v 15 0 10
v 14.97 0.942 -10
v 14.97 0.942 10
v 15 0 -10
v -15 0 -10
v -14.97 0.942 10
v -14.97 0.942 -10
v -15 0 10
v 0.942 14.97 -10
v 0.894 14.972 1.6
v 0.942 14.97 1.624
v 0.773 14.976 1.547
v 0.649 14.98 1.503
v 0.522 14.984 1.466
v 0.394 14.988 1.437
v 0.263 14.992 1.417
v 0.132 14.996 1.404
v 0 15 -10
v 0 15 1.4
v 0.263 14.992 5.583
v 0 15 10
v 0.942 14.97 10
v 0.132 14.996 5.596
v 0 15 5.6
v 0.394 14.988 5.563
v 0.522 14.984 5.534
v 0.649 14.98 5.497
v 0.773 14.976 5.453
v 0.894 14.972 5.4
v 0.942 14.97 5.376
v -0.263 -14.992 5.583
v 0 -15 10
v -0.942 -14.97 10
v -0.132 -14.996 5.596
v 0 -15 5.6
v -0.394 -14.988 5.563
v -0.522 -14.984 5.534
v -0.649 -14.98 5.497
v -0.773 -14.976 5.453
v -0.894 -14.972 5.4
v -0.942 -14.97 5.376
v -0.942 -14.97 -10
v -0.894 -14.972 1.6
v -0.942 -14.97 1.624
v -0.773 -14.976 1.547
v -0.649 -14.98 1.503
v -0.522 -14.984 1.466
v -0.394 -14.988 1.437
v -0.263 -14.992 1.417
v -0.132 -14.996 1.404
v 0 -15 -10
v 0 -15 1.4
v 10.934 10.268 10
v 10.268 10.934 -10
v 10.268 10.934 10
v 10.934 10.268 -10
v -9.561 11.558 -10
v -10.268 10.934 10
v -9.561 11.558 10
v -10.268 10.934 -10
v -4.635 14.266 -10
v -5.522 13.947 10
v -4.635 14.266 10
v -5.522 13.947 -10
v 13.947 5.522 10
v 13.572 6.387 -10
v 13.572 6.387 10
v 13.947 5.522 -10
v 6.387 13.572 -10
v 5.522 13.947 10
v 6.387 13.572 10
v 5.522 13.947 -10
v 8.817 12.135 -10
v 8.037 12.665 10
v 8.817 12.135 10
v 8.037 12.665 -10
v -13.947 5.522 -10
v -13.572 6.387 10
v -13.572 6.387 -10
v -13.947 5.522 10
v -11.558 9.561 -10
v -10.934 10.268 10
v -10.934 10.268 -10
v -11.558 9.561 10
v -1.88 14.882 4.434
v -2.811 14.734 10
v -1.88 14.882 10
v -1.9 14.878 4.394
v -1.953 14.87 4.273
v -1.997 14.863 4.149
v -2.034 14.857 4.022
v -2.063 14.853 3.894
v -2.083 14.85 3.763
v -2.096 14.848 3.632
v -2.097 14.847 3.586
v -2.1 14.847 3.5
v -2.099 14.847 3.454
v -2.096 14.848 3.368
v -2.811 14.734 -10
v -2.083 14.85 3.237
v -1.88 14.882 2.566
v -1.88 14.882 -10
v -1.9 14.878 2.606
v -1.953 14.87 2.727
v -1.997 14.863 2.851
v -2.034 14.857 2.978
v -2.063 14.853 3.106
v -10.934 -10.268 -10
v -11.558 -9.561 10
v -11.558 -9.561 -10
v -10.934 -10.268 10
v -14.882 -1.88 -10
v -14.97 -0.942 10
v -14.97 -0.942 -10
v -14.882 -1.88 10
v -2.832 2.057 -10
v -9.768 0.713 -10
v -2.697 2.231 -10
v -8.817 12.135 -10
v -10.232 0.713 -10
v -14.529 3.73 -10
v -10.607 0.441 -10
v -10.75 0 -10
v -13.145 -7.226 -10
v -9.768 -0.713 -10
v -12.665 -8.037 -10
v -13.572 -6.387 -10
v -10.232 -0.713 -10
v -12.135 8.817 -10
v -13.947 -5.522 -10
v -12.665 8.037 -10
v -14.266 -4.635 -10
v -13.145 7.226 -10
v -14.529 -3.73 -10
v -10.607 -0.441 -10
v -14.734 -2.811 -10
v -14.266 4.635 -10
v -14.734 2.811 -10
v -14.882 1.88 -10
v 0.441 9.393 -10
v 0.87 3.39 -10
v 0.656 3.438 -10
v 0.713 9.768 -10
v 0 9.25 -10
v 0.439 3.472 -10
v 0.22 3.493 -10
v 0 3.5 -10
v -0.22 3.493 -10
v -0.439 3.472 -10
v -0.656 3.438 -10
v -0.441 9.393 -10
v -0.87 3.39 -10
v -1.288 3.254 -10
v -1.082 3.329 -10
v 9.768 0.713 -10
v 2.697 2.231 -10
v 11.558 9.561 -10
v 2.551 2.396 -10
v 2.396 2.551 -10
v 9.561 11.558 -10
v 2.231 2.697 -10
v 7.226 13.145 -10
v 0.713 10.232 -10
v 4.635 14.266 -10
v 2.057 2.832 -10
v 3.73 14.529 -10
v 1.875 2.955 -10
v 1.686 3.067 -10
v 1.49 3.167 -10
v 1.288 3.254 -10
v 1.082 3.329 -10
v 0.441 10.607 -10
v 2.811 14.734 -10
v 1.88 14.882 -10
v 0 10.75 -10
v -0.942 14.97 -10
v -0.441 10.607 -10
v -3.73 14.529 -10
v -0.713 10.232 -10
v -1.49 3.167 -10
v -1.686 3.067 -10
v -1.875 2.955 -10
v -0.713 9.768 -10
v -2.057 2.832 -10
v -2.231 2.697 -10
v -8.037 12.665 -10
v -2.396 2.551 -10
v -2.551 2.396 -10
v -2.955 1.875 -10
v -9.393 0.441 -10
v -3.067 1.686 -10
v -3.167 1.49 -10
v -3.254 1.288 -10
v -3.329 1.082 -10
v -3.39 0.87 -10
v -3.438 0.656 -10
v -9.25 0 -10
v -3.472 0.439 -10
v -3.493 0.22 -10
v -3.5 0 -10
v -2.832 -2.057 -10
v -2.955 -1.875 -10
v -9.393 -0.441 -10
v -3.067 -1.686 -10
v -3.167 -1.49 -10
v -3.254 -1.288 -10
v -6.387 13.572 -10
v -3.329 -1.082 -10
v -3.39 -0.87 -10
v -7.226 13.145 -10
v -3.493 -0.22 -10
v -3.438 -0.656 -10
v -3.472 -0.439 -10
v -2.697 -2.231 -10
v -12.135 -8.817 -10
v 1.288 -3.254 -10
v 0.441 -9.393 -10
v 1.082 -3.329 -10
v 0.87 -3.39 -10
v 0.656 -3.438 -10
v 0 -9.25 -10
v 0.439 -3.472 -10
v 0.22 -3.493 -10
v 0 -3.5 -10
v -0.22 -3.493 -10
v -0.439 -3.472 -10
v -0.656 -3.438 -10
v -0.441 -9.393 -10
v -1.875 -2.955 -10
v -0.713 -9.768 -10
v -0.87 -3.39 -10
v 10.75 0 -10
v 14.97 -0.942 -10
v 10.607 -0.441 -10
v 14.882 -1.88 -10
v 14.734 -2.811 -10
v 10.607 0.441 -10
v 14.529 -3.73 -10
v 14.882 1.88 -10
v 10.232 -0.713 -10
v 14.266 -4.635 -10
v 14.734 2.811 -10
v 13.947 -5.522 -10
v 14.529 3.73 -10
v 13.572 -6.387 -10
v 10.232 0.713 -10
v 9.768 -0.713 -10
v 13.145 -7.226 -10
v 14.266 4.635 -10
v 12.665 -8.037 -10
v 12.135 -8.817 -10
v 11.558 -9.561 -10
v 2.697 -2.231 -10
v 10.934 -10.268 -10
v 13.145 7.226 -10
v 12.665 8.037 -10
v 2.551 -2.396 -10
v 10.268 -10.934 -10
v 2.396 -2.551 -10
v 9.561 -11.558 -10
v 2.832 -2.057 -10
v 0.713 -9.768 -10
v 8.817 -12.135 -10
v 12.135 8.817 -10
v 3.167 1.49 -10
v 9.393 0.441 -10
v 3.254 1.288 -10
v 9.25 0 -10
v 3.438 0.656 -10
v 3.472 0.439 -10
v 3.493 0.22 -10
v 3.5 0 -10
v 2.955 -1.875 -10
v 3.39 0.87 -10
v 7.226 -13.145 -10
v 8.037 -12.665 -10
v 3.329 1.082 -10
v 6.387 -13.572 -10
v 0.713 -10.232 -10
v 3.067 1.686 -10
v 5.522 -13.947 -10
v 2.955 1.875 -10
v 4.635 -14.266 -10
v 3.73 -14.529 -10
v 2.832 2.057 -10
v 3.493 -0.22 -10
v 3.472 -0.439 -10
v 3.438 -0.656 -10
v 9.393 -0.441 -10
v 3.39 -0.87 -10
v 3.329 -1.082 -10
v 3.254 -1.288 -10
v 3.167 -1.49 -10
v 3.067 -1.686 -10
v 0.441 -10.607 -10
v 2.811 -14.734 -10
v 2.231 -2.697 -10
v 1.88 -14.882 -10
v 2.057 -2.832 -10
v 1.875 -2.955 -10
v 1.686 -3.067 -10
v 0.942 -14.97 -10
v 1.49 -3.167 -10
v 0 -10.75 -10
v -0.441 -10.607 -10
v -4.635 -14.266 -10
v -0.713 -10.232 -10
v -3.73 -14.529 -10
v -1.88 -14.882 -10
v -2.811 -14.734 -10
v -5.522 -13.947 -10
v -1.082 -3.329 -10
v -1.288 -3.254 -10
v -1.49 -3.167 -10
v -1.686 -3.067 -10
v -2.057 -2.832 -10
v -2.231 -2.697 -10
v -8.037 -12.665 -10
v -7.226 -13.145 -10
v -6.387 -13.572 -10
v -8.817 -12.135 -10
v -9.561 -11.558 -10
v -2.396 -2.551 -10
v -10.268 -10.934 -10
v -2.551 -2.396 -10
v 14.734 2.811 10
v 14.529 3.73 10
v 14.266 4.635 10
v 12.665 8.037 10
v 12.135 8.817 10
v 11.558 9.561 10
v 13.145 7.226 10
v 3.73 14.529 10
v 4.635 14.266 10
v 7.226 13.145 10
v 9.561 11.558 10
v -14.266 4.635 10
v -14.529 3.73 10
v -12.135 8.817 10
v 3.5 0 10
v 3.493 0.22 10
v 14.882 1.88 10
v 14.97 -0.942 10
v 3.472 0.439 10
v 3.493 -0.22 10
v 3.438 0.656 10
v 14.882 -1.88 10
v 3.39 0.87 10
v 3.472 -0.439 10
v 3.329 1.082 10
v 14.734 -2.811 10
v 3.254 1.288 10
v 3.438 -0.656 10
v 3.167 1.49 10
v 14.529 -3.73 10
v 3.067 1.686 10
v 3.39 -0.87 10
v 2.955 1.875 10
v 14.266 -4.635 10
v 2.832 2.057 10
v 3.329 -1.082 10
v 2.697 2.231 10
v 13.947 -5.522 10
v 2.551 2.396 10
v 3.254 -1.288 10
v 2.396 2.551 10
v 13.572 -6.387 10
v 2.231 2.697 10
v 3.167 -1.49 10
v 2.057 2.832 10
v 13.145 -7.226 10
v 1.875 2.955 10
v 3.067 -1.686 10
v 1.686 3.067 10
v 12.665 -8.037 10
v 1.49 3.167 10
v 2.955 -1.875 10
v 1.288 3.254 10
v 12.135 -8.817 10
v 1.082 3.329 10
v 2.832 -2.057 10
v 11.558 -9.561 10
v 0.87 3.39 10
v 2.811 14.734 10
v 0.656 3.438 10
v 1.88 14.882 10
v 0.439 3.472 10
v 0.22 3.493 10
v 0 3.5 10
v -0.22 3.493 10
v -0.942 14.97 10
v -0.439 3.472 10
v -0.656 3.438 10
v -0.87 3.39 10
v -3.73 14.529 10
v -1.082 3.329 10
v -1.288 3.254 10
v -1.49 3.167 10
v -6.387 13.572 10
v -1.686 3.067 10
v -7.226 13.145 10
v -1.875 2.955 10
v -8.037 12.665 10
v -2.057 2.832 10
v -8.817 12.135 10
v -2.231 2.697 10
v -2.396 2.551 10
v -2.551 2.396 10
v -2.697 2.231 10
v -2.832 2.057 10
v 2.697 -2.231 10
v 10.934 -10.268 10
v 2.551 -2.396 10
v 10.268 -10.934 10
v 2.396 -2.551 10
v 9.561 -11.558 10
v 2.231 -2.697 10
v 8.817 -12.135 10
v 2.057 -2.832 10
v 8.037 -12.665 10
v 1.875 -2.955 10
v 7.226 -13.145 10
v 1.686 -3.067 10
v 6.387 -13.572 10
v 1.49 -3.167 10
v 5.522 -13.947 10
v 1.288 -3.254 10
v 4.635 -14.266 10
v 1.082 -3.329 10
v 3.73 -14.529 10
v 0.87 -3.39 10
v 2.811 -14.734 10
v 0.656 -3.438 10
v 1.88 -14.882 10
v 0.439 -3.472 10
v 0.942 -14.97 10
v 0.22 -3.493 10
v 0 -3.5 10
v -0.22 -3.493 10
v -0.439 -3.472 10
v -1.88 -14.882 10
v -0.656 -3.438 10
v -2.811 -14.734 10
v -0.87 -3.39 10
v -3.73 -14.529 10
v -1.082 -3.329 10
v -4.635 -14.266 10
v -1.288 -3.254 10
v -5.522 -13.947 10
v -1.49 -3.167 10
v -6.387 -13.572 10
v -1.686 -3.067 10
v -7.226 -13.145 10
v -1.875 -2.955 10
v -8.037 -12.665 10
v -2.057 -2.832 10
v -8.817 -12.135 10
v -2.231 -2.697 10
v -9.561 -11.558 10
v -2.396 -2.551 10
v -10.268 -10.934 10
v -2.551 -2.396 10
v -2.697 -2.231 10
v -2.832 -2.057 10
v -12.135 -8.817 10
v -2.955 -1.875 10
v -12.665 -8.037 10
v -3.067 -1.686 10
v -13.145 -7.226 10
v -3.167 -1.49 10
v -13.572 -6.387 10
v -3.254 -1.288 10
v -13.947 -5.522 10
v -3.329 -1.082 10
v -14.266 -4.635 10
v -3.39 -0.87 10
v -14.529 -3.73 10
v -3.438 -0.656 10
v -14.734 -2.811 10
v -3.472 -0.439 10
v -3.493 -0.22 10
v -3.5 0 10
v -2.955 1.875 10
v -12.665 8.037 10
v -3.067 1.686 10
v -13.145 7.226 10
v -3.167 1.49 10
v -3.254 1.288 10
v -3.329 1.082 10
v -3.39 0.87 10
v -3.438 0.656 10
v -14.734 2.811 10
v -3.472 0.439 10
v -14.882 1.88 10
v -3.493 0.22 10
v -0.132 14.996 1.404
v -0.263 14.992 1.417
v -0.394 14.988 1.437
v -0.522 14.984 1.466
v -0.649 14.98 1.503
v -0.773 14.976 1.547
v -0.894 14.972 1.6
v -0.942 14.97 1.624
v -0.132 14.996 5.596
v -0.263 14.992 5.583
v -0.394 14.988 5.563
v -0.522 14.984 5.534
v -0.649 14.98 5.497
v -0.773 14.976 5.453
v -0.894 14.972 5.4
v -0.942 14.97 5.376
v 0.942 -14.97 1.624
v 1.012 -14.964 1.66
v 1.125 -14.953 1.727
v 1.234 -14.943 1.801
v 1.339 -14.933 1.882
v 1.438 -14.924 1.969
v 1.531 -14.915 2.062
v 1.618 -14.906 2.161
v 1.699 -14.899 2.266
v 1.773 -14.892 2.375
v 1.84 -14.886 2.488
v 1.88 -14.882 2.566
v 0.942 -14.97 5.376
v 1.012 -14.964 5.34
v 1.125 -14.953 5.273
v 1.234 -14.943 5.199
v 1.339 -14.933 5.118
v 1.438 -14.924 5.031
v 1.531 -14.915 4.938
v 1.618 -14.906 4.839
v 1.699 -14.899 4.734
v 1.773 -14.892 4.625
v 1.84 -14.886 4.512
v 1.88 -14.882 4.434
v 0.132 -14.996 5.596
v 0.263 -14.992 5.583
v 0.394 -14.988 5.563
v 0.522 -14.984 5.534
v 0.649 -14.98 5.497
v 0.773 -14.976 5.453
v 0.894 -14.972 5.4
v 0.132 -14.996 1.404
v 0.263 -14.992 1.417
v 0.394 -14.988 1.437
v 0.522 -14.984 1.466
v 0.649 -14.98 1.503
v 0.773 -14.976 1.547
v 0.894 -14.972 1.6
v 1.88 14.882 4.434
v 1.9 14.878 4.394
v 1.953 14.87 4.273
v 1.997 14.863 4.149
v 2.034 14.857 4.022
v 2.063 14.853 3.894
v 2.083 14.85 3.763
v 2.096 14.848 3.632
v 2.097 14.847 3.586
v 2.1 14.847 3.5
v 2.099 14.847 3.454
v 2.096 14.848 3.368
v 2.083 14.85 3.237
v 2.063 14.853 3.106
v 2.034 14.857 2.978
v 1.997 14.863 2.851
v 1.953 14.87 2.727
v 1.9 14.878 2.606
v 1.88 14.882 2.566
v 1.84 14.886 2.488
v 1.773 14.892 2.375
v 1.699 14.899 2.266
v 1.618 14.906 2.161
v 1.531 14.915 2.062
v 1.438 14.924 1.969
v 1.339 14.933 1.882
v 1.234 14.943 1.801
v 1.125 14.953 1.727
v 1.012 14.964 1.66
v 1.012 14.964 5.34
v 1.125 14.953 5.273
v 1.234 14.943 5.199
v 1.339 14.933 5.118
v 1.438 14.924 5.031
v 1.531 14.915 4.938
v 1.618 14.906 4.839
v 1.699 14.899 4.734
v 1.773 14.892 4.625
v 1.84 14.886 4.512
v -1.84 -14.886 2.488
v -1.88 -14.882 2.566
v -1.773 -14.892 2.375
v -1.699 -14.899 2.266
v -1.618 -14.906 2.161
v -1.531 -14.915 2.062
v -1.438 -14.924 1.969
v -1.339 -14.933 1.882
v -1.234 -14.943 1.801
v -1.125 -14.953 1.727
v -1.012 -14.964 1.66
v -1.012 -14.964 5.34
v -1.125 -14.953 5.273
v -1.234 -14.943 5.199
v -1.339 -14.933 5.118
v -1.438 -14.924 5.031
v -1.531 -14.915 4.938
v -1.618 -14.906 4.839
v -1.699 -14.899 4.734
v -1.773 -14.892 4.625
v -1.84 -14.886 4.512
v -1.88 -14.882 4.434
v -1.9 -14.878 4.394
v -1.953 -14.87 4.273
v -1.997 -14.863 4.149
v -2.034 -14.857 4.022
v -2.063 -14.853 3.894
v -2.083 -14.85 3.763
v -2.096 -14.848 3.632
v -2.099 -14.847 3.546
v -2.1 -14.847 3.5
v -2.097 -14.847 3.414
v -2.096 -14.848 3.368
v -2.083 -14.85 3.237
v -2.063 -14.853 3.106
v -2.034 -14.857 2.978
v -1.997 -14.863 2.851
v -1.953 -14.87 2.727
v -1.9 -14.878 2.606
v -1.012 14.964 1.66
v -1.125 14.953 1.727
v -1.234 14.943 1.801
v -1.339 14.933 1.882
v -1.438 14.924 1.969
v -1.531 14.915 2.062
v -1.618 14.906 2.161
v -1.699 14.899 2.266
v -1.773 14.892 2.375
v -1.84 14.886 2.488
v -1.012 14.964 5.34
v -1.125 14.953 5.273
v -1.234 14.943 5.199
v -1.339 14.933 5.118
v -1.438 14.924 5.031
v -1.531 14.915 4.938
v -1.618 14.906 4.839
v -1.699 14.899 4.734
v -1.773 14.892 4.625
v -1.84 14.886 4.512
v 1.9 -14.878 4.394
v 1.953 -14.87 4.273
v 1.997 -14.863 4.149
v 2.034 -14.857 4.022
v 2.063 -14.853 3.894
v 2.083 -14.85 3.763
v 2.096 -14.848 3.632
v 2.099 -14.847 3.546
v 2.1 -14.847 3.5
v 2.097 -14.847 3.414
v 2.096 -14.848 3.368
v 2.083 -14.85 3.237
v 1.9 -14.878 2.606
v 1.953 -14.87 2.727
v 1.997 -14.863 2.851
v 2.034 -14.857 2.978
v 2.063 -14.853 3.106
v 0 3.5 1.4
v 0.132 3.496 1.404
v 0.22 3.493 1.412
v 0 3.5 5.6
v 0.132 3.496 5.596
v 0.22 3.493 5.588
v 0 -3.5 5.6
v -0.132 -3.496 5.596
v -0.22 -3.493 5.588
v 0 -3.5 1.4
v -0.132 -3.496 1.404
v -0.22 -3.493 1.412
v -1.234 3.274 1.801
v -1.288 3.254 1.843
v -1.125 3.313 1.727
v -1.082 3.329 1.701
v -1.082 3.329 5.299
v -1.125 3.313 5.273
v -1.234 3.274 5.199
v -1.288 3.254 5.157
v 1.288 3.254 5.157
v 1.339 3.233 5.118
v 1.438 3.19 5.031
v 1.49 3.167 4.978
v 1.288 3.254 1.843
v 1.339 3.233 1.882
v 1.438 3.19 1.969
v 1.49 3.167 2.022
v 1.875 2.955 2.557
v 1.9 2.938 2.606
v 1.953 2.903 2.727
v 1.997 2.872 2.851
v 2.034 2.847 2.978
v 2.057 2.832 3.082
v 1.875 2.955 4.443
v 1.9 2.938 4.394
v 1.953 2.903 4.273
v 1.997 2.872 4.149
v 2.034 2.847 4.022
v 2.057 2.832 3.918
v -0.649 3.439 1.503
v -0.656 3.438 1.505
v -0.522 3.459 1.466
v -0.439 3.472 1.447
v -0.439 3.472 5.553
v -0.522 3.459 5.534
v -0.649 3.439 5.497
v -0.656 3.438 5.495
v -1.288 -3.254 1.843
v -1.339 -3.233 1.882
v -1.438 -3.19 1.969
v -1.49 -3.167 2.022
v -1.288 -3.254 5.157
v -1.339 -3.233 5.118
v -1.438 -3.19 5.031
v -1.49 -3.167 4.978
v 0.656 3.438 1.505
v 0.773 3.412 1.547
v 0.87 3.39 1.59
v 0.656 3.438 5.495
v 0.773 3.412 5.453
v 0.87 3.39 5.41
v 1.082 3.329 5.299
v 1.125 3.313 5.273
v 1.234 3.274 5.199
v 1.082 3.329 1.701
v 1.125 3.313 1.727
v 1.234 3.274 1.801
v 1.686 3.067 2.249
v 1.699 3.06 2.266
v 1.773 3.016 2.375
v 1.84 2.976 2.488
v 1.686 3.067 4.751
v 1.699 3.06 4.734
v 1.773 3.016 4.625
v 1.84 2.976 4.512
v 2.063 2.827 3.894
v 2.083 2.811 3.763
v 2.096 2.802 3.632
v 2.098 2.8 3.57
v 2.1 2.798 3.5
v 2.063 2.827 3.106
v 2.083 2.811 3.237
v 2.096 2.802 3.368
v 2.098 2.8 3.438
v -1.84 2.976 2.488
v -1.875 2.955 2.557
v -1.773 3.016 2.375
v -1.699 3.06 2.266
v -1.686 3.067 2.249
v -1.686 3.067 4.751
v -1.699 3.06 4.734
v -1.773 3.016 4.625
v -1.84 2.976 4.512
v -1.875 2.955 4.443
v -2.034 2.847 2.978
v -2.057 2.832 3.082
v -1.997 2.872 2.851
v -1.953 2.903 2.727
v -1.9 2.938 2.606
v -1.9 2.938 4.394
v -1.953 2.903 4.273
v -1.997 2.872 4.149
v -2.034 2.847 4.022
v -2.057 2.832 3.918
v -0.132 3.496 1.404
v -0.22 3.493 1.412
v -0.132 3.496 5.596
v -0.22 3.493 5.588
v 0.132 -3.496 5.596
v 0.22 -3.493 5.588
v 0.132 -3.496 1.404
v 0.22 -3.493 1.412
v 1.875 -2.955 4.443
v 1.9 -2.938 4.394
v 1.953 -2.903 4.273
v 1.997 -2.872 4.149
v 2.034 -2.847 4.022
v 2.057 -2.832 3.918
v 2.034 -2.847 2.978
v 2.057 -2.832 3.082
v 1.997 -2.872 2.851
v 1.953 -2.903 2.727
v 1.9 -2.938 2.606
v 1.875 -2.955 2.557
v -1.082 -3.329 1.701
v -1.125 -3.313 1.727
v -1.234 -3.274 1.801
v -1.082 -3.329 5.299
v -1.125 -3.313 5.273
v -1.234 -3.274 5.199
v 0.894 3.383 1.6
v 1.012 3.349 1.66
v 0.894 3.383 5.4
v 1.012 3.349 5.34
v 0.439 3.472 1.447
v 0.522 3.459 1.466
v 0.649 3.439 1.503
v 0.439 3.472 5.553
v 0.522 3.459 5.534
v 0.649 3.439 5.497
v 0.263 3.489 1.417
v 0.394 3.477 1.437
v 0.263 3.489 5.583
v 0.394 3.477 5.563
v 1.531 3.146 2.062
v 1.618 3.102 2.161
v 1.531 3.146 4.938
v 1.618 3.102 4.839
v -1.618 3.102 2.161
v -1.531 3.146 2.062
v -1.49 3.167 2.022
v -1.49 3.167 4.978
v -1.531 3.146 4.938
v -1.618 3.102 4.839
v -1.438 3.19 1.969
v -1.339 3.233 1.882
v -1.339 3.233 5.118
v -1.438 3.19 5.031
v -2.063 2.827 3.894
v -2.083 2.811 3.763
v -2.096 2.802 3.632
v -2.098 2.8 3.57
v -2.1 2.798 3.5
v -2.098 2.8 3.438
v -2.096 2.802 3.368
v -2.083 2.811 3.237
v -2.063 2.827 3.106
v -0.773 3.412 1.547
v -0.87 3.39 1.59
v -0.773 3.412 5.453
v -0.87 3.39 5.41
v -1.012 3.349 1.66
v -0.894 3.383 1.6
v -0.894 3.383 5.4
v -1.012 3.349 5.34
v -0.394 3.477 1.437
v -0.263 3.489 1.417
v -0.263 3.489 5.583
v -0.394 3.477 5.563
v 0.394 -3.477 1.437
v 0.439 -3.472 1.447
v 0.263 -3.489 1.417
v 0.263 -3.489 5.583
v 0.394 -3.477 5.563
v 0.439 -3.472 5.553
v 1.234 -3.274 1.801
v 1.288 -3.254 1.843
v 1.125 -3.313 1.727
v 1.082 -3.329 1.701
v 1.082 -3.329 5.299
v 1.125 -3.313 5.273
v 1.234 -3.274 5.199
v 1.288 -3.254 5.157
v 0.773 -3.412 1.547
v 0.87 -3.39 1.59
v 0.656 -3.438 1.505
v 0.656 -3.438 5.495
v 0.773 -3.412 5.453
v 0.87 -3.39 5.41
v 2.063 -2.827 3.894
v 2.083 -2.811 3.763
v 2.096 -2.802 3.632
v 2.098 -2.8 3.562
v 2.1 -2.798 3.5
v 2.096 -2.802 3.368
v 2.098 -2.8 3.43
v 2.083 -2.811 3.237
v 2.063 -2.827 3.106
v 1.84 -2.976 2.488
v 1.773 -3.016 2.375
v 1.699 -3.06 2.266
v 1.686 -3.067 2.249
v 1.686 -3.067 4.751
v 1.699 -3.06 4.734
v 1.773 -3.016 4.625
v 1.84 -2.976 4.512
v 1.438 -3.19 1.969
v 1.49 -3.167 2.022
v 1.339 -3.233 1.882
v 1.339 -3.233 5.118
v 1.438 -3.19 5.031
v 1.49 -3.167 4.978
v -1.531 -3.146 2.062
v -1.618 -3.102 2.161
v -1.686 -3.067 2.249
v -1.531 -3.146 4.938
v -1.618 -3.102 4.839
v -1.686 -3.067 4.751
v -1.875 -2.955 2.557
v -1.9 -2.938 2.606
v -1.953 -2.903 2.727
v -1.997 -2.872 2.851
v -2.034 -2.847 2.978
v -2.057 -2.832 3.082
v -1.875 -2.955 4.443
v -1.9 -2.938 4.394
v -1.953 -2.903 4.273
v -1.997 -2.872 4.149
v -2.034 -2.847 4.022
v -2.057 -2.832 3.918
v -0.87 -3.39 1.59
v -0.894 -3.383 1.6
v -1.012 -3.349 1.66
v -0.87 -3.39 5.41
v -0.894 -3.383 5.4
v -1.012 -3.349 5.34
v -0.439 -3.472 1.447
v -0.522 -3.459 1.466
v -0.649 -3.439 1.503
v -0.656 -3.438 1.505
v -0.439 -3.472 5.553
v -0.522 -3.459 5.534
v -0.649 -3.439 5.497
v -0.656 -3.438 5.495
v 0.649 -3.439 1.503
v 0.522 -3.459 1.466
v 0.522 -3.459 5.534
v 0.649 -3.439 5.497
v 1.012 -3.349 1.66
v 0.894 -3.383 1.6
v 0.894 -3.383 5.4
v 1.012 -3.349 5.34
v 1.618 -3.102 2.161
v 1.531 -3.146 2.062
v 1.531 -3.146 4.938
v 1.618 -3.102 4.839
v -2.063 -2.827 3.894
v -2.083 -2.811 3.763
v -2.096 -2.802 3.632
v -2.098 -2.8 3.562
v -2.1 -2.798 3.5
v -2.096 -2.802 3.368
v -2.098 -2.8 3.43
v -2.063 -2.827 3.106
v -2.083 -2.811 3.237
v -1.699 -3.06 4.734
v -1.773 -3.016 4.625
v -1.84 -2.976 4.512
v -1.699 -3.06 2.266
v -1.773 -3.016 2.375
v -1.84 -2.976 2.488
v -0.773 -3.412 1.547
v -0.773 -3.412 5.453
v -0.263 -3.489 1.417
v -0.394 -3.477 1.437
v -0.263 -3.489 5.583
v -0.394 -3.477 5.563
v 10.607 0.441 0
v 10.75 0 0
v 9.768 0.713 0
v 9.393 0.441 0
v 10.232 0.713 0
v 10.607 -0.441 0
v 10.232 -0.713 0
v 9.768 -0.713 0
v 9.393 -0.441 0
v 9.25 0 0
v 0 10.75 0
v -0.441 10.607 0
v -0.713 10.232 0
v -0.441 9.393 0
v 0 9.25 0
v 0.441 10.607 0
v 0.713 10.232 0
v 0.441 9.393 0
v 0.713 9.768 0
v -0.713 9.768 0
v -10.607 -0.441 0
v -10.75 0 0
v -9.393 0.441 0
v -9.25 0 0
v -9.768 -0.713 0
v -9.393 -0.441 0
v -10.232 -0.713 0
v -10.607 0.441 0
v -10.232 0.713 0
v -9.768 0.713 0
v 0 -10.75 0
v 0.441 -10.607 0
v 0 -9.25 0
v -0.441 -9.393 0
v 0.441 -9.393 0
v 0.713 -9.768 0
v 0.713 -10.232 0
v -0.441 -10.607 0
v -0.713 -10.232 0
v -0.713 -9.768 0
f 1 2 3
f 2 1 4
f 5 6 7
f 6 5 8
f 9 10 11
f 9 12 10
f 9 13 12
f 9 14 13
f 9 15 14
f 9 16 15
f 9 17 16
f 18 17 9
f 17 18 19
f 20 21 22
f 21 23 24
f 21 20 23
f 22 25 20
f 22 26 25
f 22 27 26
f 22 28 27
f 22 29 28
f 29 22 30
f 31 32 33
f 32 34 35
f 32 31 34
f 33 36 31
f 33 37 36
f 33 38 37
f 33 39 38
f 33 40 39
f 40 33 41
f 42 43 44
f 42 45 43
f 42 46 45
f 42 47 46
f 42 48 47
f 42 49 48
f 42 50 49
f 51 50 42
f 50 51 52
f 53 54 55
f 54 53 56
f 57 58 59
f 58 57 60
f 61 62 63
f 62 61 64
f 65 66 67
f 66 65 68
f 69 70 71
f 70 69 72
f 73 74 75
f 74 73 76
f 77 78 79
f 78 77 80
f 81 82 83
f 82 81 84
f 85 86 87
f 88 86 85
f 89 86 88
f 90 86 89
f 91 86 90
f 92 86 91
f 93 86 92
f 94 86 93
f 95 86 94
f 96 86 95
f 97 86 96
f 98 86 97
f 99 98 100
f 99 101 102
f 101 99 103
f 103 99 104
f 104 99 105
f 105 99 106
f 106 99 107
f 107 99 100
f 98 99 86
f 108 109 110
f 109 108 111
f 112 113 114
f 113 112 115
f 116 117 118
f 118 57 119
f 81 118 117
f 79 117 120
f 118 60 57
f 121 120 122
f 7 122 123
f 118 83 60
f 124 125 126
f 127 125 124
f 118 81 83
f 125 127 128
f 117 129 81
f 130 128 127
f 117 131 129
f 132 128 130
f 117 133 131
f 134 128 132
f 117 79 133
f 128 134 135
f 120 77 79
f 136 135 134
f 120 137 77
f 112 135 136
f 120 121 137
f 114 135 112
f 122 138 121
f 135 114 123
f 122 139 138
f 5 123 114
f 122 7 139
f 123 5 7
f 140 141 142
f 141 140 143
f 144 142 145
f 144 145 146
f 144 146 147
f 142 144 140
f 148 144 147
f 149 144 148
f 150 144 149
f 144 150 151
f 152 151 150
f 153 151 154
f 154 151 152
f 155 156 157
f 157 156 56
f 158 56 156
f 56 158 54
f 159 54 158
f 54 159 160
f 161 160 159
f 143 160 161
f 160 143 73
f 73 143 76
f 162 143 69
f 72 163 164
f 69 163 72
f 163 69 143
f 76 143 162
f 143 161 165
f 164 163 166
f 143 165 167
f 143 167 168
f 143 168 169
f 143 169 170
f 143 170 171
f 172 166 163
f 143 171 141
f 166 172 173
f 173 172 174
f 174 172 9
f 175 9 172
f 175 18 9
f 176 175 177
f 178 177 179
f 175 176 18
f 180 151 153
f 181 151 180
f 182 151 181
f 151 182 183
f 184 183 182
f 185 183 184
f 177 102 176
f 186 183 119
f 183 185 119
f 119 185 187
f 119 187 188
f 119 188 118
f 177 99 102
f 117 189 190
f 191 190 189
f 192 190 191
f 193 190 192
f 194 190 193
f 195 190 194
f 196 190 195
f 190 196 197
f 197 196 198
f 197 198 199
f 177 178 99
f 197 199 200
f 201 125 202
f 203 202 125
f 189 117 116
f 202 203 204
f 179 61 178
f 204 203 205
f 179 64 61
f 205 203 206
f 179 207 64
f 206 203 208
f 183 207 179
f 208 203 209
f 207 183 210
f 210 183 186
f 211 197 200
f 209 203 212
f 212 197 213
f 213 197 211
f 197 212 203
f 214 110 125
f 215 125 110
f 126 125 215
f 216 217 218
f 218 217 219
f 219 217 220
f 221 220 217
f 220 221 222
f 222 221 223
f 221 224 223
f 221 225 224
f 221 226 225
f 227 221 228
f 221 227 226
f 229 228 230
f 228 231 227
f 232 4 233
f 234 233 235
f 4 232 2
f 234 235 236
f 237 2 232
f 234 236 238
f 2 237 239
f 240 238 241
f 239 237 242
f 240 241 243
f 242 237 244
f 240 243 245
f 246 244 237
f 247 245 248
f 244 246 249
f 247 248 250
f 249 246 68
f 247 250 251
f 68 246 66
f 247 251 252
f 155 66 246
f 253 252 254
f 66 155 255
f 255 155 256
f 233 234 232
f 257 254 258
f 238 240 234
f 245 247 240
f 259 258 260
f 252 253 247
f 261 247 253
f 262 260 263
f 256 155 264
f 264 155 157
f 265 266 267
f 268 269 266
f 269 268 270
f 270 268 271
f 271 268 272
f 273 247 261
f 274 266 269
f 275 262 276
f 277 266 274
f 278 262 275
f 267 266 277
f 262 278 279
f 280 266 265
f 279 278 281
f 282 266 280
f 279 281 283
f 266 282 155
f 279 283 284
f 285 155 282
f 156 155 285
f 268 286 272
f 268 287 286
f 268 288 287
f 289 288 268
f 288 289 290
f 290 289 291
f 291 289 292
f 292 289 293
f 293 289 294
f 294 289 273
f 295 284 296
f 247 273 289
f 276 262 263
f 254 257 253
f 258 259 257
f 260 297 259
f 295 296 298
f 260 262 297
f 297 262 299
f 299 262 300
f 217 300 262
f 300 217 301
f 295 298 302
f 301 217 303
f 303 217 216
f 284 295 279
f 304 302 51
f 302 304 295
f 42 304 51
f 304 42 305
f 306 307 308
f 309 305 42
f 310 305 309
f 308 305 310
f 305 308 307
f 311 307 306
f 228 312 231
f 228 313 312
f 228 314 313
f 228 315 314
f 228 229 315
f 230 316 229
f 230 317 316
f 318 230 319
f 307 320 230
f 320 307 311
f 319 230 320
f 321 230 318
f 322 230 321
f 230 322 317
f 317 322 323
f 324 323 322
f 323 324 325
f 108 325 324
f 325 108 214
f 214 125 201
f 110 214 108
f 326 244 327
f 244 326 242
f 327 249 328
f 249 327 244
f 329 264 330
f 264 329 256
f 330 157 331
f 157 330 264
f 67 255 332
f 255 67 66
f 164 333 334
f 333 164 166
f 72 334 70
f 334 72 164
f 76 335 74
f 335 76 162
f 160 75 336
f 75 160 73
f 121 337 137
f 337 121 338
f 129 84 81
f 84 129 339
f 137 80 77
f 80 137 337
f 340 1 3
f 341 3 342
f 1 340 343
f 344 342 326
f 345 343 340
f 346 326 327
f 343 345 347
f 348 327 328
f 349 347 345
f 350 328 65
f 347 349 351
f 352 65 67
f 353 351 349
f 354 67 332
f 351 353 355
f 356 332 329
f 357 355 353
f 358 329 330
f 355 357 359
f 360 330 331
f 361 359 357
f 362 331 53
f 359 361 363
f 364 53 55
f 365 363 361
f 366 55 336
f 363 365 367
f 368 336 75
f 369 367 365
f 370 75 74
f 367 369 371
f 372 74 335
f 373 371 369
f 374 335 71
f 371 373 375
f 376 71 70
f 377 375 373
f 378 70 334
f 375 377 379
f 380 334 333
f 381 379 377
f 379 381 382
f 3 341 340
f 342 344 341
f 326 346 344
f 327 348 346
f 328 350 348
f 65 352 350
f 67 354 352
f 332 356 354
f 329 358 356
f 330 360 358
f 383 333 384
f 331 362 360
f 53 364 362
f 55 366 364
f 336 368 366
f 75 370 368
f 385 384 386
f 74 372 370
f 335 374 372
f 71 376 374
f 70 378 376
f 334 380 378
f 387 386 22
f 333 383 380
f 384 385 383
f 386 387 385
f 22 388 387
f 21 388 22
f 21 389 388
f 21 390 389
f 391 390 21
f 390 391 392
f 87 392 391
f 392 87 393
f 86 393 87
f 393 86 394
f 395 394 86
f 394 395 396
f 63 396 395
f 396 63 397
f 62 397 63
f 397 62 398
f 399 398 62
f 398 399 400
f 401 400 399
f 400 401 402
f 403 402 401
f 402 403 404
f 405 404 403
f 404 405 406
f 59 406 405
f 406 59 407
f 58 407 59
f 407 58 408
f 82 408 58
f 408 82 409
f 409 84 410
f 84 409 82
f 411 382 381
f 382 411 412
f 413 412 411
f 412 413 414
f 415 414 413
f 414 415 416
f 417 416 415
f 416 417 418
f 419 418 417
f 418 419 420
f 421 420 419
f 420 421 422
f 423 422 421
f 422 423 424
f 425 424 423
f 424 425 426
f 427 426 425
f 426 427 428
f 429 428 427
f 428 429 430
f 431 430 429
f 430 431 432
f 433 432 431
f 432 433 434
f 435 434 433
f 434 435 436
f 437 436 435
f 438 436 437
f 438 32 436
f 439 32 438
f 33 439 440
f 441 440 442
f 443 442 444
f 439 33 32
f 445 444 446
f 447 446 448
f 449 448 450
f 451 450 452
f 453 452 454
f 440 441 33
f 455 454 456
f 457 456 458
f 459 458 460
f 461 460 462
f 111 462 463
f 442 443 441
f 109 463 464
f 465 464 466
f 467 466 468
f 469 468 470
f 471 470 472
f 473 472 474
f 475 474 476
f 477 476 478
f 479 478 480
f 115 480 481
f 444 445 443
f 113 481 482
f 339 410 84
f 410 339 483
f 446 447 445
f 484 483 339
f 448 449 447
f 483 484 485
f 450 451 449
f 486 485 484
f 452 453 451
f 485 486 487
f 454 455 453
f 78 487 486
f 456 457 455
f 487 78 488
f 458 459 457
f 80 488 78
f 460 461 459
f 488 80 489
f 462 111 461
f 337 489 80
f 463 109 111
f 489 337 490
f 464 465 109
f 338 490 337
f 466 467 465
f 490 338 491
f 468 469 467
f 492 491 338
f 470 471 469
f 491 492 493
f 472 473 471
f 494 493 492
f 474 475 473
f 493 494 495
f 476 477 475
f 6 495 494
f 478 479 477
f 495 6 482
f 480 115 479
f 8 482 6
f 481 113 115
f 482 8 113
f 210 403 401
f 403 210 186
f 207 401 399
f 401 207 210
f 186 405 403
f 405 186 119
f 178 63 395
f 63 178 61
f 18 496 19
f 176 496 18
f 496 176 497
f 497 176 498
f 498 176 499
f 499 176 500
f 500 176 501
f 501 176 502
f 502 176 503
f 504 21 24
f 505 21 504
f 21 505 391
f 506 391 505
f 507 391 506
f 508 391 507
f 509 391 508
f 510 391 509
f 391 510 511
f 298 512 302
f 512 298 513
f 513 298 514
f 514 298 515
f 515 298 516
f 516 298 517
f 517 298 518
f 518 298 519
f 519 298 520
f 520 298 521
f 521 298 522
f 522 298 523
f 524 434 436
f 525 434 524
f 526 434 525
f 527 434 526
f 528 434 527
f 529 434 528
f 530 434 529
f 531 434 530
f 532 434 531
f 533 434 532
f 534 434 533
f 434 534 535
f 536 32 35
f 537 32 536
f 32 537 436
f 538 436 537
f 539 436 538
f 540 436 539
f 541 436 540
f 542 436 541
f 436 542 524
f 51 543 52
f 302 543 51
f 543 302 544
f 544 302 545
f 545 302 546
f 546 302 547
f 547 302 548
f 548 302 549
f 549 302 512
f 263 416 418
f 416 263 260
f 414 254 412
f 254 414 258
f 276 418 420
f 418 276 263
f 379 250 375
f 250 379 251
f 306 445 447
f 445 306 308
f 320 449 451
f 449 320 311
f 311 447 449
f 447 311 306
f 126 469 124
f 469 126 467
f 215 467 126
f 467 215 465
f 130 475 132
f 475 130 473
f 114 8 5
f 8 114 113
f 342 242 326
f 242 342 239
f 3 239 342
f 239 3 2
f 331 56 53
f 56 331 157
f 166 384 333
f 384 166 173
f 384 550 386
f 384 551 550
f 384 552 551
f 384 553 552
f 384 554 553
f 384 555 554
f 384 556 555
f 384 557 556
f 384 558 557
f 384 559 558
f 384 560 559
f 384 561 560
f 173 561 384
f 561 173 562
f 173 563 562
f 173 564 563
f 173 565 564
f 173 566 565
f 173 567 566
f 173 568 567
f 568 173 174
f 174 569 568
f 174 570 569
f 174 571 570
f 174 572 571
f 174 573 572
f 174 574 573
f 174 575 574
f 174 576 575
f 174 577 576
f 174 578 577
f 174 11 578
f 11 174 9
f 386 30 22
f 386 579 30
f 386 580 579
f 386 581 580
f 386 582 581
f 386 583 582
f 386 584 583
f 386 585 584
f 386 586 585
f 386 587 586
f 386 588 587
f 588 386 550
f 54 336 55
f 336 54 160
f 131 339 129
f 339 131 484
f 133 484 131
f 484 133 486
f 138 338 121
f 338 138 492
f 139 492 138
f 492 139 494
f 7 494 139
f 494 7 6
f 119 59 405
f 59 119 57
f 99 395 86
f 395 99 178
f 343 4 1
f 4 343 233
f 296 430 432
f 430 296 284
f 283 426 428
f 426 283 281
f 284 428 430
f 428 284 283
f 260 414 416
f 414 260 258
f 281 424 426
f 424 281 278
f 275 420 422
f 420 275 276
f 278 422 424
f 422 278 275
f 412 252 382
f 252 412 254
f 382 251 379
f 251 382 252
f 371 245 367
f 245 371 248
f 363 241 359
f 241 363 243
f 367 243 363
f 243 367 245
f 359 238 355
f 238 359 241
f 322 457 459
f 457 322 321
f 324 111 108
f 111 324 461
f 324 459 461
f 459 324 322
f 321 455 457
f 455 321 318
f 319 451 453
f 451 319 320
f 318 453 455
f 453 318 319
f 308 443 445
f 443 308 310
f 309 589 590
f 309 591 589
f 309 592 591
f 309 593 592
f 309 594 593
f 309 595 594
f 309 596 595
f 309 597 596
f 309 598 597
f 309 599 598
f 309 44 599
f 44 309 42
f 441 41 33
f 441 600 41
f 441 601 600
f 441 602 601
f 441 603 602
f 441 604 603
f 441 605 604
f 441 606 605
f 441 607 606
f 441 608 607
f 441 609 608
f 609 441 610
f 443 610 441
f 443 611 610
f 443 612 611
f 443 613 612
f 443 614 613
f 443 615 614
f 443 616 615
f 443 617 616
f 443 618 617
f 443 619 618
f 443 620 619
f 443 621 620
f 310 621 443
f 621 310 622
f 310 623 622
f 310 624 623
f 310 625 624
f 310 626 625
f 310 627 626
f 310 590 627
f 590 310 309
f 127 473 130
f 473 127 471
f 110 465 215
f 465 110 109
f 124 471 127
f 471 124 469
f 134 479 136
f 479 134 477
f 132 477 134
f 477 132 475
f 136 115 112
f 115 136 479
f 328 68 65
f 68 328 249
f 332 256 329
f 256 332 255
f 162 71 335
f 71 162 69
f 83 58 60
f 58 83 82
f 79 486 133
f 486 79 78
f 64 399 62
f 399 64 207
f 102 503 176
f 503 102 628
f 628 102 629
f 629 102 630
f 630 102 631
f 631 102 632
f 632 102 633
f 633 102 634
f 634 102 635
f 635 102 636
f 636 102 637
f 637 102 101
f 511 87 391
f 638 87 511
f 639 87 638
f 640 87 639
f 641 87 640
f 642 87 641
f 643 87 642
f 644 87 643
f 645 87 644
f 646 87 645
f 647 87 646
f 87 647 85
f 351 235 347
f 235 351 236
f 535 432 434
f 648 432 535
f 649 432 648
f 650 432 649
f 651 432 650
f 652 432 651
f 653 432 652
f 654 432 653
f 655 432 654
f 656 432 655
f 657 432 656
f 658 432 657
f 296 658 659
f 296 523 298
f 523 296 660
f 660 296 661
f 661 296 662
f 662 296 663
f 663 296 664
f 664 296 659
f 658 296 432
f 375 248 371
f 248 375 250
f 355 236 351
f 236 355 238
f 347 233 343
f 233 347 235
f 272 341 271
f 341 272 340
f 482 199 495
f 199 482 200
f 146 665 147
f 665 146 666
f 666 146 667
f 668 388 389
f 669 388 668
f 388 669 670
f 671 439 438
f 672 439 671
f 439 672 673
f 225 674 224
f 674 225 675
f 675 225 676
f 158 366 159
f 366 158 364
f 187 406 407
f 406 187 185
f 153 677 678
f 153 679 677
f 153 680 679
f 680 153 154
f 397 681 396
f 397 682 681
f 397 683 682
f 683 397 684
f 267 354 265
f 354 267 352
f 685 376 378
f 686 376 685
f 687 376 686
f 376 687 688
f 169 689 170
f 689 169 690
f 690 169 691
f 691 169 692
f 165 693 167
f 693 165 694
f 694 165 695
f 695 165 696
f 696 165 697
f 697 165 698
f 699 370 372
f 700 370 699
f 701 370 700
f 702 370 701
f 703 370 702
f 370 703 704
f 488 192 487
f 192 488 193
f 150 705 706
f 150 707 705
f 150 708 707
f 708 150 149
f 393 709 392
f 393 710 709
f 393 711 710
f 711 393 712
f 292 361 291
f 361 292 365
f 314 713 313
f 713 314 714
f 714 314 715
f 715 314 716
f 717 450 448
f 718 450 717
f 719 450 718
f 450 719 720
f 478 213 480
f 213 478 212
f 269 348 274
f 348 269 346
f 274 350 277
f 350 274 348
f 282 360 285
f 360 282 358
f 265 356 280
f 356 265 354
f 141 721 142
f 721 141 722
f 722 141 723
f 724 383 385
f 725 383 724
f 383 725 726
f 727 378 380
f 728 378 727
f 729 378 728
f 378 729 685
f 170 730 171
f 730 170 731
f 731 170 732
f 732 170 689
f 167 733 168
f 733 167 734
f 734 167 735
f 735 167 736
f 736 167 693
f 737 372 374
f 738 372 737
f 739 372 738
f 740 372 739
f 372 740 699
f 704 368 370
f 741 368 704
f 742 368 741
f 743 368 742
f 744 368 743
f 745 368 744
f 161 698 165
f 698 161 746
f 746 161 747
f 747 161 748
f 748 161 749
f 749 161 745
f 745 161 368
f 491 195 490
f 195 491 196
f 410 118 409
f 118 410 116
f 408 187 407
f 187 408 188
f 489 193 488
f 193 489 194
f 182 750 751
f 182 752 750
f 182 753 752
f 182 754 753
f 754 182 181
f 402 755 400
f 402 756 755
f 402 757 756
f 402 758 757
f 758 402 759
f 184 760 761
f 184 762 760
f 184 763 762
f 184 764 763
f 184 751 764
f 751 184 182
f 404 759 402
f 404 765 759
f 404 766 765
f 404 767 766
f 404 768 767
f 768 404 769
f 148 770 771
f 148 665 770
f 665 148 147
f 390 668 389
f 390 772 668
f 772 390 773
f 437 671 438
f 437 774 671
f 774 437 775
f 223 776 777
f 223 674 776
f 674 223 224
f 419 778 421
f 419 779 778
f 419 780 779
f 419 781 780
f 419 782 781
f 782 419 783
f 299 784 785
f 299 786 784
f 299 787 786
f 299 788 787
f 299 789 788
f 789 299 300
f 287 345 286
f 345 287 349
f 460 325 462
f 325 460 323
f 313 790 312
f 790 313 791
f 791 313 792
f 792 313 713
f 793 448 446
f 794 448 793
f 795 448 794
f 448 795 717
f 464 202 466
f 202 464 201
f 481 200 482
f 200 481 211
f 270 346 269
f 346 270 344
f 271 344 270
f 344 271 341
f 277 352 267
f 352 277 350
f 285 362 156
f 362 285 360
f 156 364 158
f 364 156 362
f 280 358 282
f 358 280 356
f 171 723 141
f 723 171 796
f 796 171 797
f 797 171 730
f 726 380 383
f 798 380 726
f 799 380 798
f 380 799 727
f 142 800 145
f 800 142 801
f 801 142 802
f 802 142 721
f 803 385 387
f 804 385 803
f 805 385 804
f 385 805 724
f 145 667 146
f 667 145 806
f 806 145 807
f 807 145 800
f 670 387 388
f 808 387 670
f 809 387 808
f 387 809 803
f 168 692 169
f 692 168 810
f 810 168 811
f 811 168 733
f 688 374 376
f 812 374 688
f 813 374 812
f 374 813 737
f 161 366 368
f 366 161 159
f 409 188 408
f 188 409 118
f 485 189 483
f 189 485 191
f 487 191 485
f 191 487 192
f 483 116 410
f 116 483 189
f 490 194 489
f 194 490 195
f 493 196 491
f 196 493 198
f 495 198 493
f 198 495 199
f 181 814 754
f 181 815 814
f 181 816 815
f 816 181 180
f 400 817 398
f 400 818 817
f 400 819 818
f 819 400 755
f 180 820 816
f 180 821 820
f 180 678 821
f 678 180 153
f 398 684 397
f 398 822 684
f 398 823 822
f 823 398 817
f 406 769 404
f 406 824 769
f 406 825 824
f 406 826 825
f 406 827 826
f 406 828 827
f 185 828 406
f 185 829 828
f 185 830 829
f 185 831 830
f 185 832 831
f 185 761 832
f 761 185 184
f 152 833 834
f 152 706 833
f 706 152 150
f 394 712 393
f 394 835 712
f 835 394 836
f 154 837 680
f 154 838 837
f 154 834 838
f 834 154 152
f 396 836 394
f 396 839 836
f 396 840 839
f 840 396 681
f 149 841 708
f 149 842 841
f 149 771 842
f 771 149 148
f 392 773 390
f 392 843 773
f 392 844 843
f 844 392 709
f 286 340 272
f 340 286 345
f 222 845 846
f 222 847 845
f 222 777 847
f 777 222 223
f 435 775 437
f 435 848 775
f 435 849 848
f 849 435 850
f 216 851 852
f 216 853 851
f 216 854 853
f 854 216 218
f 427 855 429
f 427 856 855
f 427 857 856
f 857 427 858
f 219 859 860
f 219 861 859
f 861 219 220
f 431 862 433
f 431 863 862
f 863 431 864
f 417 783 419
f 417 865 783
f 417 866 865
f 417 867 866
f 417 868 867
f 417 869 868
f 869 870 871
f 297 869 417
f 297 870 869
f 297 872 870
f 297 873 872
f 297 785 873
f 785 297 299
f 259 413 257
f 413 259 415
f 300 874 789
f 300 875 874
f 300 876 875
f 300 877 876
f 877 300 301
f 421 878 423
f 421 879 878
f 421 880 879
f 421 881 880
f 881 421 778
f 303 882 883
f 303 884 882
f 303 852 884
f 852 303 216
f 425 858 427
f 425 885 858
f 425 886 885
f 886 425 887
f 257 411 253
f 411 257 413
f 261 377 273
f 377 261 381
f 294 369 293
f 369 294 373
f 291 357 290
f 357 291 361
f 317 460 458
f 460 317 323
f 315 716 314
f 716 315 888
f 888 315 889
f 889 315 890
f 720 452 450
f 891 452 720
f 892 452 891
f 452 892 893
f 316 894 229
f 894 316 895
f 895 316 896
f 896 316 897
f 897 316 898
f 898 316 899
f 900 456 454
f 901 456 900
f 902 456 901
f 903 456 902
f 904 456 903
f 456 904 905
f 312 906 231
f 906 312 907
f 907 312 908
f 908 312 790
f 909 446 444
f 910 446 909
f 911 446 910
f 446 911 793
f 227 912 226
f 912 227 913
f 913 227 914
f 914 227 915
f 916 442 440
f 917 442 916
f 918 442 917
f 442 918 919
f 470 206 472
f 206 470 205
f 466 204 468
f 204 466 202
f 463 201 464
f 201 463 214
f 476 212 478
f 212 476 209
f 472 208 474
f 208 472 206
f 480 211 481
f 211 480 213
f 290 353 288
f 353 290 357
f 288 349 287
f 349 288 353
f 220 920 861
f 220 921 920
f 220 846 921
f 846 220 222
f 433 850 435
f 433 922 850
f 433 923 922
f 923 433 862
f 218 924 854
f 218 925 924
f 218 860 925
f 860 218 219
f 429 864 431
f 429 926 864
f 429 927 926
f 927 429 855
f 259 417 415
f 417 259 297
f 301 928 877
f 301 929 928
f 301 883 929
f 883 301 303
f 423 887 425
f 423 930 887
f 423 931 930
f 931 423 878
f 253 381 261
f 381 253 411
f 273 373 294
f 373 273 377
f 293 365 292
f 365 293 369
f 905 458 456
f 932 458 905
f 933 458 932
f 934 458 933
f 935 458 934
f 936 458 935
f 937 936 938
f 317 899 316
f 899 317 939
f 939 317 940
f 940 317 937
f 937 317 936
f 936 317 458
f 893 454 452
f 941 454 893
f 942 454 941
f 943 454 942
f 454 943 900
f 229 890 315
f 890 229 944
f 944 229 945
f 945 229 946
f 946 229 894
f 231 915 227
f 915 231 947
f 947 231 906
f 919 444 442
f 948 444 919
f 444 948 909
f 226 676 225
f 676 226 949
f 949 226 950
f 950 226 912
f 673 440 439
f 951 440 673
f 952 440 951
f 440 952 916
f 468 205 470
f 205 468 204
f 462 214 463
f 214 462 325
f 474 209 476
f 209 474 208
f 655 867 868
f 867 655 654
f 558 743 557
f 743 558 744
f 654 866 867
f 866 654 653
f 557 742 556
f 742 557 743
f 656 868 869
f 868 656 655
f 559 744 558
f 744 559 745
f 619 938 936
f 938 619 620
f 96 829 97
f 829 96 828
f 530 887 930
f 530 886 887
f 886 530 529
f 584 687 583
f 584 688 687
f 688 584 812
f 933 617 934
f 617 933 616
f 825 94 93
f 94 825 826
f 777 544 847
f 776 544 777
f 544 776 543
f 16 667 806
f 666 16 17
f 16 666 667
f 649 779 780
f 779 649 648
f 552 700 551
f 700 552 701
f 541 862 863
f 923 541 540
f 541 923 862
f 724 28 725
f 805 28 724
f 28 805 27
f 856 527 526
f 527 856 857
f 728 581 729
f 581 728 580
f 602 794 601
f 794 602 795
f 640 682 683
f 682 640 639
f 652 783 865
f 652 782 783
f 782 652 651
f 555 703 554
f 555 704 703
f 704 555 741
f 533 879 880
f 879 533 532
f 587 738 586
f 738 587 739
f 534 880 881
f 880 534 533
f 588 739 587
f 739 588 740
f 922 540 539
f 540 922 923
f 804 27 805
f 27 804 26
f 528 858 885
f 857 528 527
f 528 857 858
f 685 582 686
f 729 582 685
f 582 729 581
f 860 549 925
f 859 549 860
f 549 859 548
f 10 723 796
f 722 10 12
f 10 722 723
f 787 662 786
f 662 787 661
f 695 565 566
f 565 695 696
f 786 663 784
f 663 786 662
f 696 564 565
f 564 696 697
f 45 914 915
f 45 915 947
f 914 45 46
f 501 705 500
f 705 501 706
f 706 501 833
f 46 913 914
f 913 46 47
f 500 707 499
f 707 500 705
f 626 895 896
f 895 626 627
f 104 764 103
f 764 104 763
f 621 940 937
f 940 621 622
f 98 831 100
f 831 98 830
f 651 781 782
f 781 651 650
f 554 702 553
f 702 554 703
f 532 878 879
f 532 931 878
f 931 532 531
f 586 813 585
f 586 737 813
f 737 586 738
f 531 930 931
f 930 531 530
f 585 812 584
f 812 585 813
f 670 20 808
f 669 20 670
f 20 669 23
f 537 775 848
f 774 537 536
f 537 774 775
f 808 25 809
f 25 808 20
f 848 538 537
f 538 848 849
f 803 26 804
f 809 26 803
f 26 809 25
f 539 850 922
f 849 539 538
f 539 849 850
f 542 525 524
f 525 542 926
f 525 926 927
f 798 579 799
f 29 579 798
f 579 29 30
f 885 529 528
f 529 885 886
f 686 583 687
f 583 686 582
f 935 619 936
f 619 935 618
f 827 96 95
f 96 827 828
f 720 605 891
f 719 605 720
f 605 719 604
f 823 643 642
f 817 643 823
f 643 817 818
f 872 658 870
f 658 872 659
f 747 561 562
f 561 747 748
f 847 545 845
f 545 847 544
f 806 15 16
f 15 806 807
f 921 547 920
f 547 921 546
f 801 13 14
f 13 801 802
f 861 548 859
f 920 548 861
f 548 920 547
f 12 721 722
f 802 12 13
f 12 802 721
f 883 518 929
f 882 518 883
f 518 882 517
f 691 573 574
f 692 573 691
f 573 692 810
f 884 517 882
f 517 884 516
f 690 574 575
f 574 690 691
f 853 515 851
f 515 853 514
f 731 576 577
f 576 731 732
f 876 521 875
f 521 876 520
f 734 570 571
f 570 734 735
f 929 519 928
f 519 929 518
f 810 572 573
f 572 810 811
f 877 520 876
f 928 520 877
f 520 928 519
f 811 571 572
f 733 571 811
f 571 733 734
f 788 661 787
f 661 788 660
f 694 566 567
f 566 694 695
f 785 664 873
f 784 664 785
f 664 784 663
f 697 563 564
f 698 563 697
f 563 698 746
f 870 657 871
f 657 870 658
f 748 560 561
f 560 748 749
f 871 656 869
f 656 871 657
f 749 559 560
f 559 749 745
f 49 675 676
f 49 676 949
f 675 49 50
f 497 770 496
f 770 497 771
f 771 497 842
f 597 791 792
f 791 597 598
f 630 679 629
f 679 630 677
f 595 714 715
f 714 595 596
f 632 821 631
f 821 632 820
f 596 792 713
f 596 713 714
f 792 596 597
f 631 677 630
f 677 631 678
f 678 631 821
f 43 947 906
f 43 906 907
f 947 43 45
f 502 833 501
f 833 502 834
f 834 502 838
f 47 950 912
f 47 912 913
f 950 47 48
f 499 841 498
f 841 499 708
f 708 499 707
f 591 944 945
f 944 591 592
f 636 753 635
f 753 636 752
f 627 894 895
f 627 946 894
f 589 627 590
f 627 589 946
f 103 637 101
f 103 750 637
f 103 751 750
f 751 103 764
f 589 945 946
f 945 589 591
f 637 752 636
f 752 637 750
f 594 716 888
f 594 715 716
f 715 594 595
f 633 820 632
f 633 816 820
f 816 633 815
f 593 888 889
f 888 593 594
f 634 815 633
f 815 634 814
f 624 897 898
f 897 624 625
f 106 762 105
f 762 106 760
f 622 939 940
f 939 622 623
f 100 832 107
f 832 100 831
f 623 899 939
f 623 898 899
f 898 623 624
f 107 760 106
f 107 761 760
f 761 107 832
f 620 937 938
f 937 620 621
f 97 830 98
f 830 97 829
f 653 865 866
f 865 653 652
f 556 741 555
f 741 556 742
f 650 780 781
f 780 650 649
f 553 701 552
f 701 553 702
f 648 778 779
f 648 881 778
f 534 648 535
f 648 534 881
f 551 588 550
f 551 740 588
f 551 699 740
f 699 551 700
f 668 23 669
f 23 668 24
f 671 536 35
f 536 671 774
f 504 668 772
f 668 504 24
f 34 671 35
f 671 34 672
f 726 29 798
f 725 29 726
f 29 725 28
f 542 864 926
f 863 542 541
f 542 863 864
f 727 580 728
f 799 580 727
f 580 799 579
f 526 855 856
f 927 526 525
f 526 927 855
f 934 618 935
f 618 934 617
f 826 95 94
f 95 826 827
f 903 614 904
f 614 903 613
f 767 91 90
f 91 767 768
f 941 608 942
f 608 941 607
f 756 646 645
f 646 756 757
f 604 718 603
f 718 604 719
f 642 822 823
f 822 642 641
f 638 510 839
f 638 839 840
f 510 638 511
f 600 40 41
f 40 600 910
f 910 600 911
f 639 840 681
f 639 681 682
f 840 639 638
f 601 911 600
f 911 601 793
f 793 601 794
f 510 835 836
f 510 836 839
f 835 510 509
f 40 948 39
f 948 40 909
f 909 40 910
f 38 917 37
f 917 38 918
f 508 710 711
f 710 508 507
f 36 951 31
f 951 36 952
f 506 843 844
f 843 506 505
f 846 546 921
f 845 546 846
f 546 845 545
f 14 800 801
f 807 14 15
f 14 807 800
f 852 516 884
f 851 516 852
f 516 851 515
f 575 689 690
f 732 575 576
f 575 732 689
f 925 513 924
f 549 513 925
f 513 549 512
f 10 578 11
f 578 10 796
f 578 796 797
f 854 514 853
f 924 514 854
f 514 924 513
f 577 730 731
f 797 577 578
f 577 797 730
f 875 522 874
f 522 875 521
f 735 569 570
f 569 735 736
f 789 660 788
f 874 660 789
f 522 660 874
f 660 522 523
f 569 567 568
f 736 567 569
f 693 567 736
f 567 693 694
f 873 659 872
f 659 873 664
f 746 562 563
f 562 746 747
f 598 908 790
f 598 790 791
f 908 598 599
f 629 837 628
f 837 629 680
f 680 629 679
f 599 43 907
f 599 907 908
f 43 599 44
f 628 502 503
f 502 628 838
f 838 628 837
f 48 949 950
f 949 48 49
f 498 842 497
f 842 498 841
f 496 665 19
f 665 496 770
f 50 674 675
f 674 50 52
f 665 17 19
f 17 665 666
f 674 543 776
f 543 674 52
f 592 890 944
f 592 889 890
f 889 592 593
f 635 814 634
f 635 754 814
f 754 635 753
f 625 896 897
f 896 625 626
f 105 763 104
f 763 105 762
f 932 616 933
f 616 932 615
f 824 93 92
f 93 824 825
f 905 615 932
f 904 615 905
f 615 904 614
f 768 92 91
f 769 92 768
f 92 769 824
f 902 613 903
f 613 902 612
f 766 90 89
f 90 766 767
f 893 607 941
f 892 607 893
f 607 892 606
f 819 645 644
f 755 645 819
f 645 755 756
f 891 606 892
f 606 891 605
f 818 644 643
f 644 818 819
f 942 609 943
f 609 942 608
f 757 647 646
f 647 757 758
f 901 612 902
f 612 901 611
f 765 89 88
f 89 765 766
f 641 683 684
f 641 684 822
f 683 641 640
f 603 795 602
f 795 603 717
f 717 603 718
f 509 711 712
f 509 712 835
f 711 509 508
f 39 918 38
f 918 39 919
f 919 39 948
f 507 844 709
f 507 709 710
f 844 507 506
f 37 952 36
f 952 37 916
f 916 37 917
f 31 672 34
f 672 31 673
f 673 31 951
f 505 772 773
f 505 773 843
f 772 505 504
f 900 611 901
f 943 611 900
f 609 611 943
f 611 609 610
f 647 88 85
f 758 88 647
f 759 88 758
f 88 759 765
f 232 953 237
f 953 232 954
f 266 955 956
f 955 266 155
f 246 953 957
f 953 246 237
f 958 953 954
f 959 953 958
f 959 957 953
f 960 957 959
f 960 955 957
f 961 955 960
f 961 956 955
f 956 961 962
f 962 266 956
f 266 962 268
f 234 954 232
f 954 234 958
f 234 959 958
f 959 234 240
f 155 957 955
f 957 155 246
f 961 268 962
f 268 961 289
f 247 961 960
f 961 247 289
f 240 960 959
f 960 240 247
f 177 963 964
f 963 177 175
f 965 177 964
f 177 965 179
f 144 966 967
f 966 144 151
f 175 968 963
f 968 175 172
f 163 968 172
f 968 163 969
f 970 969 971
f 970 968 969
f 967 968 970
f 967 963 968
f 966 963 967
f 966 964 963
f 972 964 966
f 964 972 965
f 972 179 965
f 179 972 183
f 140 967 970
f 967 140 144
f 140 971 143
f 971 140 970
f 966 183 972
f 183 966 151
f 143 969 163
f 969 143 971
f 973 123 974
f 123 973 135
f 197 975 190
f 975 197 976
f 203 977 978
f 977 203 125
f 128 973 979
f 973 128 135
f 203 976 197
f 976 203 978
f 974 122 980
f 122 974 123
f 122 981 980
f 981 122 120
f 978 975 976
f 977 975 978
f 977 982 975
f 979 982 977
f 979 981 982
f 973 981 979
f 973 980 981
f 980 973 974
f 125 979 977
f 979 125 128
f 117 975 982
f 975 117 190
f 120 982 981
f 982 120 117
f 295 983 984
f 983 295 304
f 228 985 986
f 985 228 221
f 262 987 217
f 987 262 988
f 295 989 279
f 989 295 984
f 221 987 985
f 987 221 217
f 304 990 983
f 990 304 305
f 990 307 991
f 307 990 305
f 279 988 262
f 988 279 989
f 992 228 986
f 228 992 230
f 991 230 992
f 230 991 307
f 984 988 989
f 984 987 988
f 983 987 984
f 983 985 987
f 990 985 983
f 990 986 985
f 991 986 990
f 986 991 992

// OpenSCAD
difference()
{
    cylinder (h = 20, r=15, center = true, $fn=100);
    cylinder (h = 20, r=3.5, center = true, $fn=100);
    translate ([0,0,3.5])rotate([90,0,0]) cylinder (h = 100, r=2.1, center = true, $fn=100);
    
    translate ([10,0,-5])cylinder (h = 10, r=0.75, center = true, $fn=10);
    rotate([0,0,90])translate ([10,0,-5])cylinder (h = 10, r=0.75, center = true, $fn=10);
    rotate([0,0,180])translate ([10,0,-5])cylinder (h = 10, r=0.75, center = true, $fn=10);
    rotate([0,0,270])translate ([10,0,-5])cylinder (h = 10, r=0.75, center = true, $fn=10);
}
